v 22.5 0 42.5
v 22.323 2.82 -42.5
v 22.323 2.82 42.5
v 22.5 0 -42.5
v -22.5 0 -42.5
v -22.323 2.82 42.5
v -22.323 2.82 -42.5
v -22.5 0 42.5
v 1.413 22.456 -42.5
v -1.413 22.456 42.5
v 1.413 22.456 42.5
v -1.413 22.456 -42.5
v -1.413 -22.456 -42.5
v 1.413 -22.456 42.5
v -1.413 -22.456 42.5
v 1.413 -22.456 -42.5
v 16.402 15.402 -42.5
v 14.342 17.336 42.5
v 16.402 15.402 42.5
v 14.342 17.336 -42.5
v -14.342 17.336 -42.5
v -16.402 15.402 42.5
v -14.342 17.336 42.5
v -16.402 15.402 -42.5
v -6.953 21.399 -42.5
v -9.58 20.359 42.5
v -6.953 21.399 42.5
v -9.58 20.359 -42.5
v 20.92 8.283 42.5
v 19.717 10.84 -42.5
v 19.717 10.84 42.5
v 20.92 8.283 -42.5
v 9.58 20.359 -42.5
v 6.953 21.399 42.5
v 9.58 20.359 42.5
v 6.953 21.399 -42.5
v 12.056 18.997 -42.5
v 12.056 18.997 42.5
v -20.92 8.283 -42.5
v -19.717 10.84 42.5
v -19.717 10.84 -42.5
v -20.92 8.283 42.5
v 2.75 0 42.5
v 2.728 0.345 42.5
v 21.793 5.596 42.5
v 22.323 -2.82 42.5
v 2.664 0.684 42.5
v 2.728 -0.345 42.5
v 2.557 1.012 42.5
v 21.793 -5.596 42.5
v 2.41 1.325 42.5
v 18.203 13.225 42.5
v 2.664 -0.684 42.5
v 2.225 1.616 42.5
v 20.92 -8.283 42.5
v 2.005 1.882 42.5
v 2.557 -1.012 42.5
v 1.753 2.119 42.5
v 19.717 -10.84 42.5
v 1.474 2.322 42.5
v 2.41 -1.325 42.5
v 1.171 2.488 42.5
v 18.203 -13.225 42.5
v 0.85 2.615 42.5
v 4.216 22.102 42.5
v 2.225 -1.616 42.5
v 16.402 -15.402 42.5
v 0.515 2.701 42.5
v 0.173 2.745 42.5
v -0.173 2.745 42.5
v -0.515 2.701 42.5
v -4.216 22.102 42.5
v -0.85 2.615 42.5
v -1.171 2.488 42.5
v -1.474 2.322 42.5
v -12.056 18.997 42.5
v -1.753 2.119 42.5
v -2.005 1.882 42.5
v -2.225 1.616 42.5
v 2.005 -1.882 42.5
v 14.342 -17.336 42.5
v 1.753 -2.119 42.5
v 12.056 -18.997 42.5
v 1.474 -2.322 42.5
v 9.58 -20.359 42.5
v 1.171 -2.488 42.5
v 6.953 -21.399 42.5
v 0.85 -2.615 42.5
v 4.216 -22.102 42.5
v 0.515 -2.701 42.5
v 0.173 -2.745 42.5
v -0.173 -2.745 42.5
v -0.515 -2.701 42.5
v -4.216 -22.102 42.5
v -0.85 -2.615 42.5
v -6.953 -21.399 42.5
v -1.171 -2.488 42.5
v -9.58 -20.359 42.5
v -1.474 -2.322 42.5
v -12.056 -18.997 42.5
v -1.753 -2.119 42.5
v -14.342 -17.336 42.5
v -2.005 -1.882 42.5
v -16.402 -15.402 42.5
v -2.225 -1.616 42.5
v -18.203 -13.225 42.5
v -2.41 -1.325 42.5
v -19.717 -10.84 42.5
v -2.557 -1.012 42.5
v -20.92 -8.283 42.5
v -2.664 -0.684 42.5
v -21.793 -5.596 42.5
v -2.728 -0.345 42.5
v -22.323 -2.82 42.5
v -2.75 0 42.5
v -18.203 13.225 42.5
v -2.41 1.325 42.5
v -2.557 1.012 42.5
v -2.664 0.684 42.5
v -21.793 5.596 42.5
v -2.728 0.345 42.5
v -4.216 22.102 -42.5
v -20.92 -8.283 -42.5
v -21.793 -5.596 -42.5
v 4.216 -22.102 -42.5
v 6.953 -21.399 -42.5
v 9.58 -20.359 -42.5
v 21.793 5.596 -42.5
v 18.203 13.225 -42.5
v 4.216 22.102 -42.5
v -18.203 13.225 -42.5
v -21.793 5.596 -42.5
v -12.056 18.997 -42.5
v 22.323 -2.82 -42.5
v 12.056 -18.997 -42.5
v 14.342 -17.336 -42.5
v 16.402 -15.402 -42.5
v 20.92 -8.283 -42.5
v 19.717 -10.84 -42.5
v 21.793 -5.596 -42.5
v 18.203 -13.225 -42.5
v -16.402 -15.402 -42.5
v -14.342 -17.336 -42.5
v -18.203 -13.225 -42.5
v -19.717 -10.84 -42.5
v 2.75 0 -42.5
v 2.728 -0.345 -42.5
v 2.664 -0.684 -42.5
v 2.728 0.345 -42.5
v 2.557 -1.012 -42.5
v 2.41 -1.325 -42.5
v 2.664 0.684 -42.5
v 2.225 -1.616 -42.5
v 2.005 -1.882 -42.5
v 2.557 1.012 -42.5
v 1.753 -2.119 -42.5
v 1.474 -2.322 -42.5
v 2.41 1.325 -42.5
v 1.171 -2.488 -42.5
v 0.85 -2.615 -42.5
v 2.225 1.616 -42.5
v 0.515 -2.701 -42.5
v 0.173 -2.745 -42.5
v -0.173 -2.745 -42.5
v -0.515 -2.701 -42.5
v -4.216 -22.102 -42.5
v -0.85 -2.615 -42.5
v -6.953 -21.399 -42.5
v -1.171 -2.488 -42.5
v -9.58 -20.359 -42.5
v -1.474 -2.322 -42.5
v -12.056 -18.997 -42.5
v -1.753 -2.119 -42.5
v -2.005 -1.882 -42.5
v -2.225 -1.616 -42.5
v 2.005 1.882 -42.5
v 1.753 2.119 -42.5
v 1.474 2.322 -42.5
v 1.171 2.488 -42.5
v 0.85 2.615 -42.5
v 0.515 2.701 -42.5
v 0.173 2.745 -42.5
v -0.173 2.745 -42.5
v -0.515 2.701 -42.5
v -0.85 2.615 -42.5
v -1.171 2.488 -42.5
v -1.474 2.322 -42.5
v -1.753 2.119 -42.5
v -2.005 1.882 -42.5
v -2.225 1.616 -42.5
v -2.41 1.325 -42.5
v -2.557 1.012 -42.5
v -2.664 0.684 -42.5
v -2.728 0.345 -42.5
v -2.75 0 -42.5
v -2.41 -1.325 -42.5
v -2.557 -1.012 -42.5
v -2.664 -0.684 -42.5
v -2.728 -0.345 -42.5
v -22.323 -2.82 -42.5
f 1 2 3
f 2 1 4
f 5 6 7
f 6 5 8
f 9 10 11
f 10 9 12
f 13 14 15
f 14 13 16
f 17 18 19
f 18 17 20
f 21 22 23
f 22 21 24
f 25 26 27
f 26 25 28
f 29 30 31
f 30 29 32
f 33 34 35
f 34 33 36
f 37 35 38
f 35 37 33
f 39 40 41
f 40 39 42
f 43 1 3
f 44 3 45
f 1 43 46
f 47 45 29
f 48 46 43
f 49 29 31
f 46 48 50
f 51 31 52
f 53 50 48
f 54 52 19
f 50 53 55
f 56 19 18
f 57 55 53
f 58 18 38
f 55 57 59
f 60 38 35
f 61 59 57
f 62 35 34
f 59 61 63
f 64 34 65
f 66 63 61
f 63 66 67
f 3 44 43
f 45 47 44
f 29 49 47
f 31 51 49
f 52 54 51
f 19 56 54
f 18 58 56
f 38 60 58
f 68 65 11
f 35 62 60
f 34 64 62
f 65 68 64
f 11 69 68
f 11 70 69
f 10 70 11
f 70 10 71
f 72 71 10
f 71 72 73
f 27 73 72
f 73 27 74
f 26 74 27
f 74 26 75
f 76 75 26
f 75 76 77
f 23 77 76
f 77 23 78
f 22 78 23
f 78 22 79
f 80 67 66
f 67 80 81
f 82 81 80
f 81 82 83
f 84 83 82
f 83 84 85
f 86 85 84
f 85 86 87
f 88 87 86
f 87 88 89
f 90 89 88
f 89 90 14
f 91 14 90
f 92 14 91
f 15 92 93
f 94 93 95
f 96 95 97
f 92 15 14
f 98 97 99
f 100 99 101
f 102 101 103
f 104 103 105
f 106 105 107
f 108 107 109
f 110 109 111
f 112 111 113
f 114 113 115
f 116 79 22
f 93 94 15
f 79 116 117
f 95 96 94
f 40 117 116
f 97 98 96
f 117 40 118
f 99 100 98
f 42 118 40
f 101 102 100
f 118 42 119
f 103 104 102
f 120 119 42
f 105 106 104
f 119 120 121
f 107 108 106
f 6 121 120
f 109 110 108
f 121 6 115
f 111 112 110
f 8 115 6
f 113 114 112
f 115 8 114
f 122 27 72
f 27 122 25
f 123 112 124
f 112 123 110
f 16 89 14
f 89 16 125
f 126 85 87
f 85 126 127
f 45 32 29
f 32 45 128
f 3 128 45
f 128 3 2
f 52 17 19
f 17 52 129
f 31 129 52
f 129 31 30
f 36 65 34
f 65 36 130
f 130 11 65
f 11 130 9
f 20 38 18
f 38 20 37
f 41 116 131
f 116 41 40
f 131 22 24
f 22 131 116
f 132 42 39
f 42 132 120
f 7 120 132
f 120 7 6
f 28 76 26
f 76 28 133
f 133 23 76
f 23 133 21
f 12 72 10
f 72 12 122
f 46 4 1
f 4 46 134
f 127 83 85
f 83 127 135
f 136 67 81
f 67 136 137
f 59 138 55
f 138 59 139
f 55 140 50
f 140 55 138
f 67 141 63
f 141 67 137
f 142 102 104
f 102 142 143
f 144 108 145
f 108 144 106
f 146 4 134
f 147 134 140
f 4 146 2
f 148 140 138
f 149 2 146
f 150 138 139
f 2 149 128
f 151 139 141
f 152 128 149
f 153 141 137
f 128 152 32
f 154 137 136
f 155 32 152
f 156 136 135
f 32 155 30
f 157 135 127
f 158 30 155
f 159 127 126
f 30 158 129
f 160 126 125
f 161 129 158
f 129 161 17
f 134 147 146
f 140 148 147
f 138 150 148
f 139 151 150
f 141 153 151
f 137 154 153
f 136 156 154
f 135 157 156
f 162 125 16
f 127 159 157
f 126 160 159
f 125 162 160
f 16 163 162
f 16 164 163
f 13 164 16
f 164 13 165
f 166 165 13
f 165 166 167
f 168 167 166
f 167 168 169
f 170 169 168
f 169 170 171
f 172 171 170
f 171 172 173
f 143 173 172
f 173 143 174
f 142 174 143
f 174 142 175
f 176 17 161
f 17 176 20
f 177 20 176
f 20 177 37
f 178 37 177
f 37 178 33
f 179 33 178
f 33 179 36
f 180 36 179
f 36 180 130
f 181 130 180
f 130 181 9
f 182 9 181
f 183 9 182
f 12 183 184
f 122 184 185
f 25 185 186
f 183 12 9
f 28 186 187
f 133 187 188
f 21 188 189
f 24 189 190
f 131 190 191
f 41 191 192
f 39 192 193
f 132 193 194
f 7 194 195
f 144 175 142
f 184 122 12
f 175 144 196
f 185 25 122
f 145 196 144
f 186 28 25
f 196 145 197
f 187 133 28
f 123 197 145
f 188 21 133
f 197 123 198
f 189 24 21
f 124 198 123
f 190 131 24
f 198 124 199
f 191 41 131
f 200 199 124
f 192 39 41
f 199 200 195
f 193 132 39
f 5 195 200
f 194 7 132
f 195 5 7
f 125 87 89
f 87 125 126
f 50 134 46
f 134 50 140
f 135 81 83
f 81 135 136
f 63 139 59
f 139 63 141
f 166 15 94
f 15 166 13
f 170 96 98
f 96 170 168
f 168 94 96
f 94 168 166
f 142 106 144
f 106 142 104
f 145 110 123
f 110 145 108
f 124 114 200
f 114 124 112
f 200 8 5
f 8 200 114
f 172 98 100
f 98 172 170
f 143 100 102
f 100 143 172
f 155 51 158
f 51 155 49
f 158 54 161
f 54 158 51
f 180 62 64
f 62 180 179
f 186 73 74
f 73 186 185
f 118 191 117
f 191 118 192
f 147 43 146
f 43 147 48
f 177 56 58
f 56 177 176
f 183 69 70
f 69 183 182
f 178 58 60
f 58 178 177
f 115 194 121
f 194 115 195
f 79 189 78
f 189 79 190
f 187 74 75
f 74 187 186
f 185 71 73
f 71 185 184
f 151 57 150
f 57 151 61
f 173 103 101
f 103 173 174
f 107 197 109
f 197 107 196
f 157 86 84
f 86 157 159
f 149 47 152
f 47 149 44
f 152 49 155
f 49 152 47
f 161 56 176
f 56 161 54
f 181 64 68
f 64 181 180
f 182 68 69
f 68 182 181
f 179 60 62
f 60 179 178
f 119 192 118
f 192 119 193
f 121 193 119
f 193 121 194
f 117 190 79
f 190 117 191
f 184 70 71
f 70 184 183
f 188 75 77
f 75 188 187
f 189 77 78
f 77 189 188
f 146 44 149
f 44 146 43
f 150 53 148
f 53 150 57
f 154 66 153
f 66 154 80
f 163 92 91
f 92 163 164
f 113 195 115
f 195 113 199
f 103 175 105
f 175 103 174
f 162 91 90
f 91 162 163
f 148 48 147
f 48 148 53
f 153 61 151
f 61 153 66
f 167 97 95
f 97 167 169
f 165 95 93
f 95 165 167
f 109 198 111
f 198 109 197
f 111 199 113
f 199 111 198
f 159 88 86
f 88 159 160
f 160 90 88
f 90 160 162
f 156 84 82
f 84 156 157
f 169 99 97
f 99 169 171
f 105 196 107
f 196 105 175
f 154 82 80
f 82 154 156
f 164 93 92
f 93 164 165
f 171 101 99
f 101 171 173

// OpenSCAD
$fn = 50;


difference() {
	union() {
		translate(v = [0, 0, -42.5000000000]) {
			cylinder(h = 85, r = 22.5000000000);
		}
	}
	union() {
		translate(v = [0, 0, -100.0000000000]) {
			cylinder(h = 200, r = 2.7500000000);
		}
	}
}
